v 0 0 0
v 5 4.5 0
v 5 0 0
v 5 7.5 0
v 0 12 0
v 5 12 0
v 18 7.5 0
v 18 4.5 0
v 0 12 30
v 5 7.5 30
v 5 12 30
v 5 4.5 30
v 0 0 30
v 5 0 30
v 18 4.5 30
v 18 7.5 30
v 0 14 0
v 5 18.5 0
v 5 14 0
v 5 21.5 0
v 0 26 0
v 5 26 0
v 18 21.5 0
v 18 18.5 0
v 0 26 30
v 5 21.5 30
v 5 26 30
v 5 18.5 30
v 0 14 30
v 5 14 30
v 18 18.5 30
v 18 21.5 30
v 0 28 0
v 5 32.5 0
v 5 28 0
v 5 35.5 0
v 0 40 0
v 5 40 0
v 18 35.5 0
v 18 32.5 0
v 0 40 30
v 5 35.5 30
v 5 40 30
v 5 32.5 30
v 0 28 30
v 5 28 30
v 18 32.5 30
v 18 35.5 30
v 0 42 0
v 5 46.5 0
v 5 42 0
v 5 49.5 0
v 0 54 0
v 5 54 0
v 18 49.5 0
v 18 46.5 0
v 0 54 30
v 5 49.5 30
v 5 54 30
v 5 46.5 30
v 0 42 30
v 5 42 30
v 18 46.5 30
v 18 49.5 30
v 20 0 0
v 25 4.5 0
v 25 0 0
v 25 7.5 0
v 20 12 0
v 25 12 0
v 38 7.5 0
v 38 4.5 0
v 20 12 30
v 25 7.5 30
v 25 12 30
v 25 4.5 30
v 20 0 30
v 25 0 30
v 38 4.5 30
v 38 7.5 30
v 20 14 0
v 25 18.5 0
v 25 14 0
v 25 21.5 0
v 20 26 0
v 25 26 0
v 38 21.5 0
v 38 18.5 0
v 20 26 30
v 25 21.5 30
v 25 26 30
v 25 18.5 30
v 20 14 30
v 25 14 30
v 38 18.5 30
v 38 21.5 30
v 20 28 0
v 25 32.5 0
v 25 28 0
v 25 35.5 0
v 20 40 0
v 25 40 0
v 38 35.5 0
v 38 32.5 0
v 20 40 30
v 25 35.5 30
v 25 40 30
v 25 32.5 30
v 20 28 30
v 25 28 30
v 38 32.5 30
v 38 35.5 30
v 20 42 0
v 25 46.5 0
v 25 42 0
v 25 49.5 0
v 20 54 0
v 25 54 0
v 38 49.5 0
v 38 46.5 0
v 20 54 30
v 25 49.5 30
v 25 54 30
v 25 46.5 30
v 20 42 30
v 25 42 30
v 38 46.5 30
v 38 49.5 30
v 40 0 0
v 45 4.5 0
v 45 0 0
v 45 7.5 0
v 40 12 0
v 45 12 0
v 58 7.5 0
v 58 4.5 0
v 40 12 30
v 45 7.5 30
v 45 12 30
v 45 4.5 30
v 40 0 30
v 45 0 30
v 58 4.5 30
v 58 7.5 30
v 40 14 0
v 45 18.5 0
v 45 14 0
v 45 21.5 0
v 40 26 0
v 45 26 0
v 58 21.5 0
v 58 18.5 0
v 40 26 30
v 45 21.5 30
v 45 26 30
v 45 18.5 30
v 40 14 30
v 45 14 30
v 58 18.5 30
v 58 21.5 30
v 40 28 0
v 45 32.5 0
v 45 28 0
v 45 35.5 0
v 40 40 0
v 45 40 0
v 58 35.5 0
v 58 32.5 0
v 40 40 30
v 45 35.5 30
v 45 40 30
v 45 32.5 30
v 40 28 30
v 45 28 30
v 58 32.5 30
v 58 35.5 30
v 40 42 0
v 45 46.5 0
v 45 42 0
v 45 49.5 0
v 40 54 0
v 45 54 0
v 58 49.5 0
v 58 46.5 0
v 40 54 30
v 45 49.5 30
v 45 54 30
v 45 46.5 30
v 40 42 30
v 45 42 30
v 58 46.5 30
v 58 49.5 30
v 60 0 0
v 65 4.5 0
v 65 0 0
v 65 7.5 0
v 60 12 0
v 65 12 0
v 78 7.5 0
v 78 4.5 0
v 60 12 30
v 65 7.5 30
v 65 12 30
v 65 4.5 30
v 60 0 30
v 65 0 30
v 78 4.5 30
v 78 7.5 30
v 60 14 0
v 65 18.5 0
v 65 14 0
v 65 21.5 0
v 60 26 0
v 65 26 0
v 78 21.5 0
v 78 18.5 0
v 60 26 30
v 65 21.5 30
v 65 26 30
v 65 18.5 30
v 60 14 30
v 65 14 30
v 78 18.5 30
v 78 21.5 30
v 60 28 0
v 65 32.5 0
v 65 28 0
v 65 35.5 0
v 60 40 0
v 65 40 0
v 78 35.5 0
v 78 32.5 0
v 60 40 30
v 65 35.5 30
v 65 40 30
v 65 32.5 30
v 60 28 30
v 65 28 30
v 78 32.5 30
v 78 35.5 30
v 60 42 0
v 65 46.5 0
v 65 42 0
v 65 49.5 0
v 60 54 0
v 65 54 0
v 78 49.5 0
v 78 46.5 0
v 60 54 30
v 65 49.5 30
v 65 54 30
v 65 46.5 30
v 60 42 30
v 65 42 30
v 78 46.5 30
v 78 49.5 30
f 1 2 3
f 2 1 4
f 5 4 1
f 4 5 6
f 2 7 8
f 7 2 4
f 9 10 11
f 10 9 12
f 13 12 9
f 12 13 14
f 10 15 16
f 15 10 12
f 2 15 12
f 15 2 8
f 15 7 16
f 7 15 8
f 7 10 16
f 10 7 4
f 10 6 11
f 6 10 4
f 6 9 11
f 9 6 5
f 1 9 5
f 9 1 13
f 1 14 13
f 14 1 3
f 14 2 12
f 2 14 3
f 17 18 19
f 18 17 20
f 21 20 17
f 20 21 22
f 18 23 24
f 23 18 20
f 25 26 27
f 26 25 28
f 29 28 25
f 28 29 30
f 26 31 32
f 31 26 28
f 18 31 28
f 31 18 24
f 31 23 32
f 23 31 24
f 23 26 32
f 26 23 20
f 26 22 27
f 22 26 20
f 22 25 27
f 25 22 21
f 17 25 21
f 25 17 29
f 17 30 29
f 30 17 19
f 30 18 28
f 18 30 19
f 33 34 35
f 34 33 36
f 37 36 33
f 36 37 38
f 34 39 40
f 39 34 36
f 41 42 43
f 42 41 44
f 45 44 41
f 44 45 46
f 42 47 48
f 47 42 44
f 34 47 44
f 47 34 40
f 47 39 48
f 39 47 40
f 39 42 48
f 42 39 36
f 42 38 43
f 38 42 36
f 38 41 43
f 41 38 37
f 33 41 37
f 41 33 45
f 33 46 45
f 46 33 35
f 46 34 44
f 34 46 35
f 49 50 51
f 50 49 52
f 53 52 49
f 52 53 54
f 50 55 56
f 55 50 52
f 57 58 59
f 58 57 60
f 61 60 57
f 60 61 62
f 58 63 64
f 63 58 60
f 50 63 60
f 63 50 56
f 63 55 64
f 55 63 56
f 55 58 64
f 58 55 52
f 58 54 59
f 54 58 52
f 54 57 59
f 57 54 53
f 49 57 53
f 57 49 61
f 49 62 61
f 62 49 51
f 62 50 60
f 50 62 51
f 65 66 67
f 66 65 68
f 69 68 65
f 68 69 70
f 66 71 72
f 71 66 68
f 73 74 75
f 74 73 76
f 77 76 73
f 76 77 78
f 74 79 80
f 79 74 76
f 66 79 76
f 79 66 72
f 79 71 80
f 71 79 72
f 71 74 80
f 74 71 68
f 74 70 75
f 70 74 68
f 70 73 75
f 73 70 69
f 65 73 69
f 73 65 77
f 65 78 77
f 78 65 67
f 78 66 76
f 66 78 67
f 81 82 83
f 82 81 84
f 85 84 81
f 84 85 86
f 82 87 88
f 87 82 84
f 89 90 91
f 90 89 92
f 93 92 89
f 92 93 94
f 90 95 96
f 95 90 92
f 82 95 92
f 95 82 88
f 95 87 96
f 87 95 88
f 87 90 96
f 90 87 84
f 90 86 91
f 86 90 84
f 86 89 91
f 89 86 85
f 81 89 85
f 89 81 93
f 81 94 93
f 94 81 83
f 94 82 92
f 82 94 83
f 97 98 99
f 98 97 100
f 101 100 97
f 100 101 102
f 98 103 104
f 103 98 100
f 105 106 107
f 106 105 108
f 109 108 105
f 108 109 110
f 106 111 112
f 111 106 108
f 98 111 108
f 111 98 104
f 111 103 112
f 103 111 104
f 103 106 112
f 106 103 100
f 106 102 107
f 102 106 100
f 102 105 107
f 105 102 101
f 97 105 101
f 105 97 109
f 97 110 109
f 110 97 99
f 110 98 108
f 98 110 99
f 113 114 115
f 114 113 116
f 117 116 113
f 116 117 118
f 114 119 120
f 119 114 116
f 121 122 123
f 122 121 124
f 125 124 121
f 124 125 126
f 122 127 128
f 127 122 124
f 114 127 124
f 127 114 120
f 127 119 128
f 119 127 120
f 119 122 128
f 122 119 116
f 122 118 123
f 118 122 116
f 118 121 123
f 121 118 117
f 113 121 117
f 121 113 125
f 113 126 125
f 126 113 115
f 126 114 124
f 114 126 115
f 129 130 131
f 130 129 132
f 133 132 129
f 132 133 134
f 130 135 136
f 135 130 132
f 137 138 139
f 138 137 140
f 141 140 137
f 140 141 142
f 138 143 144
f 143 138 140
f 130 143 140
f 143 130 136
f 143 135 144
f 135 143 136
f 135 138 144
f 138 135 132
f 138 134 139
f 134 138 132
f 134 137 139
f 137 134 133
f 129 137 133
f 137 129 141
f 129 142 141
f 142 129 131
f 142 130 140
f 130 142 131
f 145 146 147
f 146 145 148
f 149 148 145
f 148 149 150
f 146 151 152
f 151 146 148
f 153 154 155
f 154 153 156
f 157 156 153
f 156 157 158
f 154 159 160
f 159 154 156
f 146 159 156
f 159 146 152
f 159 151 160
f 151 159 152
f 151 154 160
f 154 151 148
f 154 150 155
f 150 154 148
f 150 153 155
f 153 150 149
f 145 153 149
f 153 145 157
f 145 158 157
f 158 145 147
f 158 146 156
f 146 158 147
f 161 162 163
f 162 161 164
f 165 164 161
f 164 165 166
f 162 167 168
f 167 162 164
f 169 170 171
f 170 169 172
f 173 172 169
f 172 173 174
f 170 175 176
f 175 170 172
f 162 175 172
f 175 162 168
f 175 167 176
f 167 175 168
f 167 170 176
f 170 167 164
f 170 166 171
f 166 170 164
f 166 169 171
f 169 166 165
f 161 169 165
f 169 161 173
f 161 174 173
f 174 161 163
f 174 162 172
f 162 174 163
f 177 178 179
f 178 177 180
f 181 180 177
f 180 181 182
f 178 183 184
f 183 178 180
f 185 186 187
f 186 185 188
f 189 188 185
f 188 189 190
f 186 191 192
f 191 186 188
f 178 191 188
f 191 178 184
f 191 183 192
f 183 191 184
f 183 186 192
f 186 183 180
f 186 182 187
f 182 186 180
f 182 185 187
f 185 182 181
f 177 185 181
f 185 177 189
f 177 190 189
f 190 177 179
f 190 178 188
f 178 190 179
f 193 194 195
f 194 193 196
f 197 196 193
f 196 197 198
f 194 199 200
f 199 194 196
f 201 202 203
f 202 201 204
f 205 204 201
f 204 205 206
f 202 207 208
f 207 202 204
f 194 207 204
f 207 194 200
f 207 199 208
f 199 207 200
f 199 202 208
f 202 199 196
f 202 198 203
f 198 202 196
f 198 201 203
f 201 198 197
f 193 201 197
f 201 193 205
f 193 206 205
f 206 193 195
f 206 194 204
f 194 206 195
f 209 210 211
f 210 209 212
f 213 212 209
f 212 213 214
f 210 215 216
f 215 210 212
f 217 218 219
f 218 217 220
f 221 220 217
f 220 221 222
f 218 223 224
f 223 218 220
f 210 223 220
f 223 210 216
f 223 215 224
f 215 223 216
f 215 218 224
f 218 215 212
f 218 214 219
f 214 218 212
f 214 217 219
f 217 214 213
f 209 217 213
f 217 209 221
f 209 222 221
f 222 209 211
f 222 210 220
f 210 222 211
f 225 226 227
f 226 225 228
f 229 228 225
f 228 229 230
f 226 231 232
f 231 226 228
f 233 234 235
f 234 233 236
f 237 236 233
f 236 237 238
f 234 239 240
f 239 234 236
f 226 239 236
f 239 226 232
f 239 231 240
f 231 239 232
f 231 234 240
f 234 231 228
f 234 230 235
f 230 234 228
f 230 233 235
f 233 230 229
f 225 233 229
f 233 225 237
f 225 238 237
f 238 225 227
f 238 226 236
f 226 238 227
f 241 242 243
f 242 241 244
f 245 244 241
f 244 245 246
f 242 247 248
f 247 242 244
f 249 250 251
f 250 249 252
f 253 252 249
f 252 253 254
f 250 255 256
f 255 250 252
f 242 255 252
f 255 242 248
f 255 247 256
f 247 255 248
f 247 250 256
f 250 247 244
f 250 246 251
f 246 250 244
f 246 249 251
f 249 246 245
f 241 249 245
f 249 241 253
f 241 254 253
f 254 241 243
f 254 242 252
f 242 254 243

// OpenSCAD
w = 12;
h =18;
c = 5;
t = 3; 

for( x = [0:3] ) {
    for( y = [0:3] ) {
        translate([(h+2)*x,(w+2)*y,0])
            linear_extrude(height=30)
            polygon(points=[
                [0,0],[0,w],[c,w],[c,(w+t)/2],[h,(w+t)/2],[h,(w-t)/2],[c,(w-t)/2],[c,0]]);
    }
}
